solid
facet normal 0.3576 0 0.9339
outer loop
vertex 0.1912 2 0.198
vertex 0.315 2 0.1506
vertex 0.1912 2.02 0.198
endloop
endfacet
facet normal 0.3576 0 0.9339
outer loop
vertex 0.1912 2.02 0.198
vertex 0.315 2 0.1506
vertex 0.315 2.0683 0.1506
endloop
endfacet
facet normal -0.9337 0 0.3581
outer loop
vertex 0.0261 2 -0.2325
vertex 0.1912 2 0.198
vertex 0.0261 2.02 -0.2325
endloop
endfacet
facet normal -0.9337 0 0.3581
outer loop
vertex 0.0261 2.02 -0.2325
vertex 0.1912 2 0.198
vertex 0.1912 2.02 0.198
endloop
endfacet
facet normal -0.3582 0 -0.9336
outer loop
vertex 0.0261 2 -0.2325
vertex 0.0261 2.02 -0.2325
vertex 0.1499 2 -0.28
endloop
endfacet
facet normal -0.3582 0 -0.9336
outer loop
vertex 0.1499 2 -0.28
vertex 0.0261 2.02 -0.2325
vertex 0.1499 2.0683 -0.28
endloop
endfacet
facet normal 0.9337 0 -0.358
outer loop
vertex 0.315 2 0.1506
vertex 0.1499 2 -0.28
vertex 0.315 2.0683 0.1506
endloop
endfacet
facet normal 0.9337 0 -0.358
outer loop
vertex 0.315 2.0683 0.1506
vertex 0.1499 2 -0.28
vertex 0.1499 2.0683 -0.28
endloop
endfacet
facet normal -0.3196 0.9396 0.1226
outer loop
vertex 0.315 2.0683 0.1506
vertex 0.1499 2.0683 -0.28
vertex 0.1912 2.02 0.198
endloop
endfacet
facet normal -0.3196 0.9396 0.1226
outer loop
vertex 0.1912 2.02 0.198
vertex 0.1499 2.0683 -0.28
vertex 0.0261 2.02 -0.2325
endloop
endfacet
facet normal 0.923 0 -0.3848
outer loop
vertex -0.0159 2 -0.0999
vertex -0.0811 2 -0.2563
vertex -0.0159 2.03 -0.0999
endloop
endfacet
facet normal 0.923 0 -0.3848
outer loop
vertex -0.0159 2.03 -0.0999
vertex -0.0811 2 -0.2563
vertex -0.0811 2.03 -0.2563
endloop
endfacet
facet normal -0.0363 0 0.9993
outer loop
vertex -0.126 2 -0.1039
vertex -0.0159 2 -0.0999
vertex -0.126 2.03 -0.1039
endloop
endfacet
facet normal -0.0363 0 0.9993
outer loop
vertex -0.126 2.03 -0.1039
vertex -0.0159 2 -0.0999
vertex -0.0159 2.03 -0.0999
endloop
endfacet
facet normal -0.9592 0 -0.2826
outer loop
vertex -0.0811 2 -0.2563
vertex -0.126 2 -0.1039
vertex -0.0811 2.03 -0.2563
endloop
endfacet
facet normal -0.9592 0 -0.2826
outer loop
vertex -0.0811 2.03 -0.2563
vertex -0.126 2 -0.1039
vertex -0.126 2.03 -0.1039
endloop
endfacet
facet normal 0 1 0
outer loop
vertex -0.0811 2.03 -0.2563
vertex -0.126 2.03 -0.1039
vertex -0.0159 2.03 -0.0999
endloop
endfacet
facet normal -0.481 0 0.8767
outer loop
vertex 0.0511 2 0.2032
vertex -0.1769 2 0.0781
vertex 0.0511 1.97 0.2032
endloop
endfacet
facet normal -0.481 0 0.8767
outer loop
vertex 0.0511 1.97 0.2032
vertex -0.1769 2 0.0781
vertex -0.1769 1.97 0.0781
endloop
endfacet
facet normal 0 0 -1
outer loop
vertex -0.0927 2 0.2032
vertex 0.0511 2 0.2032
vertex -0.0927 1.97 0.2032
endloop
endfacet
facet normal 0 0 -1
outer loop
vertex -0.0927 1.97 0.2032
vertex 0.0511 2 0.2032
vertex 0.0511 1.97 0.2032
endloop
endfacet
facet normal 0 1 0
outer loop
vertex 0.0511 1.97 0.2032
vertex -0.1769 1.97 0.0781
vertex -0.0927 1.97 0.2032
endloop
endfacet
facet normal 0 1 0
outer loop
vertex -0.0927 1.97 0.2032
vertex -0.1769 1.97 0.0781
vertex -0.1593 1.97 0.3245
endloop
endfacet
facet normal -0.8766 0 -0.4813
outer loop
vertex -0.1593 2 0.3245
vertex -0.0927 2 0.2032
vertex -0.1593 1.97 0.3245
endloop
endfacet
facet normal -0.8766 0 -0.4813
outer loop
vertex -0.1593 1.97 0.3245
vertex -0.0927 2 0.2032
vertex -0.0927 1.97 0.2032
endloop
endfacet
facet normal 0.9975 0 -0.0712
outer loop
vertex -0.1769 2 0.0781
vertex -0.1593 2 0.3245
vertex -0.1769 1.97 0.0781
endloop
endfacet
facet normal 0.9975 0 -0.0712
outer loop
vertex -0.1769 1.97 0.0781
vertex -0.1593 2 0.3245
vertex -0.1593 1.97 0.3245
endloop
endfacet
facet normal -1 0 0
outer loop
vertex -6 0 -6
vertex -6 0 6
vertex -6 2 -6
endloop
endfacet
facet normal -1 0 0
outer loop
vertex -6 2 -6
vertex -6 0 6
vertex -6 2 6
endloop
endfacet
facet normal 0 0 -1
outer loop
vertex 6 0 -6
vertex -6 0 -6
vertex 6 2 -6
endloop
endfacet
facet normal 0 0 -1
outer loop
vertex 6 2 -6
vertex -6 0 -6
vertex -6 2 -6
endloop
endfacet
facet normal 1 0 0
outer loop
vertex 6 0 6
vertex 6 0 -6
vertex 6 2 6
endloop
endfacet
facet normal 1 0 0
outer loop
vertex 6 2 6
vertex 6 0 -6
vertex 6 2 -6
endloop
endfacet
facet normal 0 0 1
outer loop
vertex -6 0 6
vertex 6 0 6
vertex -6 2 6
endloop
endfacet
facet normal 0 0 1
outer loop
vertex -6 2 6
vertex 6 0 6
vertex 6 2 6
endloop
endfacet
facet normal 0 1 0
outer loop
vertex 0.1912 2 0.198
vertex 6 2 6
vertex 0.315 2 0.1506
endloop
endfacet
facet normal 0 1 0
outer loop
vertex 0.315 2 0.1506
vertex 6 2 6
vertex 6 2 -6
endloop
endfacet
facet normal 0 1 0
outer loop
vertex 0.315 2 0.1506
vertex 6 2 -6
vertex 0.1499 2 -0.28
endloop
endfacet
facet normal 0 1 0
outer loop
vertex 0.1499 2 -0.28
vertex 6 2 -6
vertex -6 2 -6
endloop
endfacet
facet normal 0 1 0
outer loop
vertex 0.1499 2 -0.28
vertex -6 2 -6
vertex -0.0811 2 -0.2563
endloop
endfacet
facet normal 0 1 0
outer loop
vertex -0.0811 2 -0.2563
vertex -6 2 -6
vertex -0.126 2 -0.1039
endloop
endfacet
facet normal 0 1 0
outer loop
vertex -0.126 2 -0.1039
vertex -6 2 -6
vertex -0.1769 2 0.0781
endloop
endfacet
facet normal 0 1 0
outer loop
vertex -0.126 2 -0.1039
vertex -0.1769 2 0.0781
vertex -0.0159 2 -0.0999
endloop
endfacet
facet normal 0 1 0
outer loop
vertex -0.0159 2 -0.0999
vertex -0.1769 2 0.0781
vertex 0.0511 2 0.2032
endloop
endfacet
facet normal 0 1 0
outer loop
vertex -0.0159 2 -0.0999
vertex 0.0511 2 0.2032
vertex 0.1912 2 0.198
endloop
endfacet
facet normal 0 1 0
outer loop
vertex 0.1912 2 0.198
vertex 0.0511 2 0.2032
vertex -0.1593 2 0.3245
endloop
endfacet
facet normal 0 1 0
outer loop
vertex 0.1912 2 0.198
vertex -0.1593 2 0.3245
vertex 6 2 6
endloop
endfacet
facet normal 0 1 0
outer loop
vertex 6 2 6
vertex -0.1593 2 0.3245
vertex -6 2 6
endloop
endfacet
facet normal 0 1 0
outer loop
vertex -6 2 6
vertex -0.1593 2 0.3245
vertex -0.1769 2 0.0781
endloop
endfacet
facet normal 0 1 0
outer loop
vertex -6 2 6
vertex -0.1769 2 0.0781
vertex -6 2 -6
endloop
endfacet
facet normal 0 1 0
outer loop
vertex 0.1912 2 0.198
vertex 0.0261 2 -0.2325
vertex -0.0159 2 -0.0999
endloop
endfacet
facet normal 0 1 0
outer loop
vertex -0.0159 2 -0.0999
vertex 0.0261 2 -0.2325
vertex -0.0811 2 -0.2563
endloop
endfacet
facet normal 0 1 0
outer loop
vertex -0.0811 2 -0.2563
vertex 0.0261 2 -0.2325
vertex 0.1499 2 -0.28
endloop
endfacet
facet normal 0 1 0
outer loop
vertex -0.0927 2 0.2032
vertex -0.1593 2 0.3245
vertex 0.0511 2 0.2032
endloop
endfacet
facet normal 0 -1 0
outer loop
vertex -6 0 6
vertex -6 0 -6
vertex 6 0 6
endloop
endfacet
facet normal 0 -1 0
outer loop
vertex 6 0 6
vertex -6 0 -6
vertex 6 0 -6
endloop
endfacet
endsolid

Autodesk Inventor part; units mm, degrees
ref_plane "YZ Plane" through (0, 0, 0) normal (1, 0, 0) x (0, 1, 0)
ref_plane "XZ Plane" through (0, 0, 0) normal (0, 1, 0) x (-1, 0, 0)
ref_plane "XY Plane" through (0, 0, 0) normal (0, 0, 1) x (1, 0, 0)
sketch "Sketch1" plane through (0, 0, 0) normal (0, 1, 0) x (-1, 0, 0)
  line L0 (6, 6) -> (-6, 6)
  line L1 (-6, 6) -> (-6, -6)
  line L2 (-6, -6) -> (6, -6)
  line L3 (6, -6) -> (6, 6)
  line L4 (6, 6) -> (-6, -6) construction
  line L5 (-6, 6) -> (6, -6) construction
  point P0 (0, 0)
  dimension "d0" = 12
  dimension "d1" = 12
extrude "Extrusion1" add sketch "Sketch1" along normal blind 2
sketch "Sketch2" plane through (0, 2, 0) normal (0, 1, 0) x (1, 0, 0)
  line L0 (-0.0927, -0.2032) -> (0.0511, -0.2032)
  line L1 (0.0511, -0.2032) -> (-0.1769, -0.0781)
  line L2 (-0.1769, -0.0781) -> (-0.1593, -0.3245)
  line L3 (-0.1593, -0.3245) -> (-0.0927, -0.2032)
  line L4 (-0.0811, 0.2563) -> (-0.126, 0.1039)
  line L5 (-0.126, 0.1039) -> (-0.0159, 0.0999)
  line L6 (-0.0159, 0.0999) -> (-0.0811, 0.2563)
  line L7 (0.315, -0.1506) -> (0.1499, 0.28)
  line L8 (0.1499, 0.28) -> (0.0261, 0.2325)
  line L9 (0.0261, 0.2325) -> (0.1912, -0.198)
  line L10 (0.1912, -0.198) -> (0.315, -0.1506)
  line L11 (0.315, -0.1506) -> (0.0261, 0.2325) construction
  line L12 (0.1499, 0.28) -> (0.1912, -0.198) construction
  point P0 (0, 0)
  point P1 (0.1705, 0.041)
extrude "Extrusion2" cut sketch "Sketch2" along normal mid plane 0.06 contours L3 L2 L1 L0
extrude "Extrusion3" add sketch "Sketch2" along normal blind 0.03 contours L6 L5 L4
extrude "Extrusion4" add sketch "Sketch2" along normal blind 0.02 contours L10 L9 L8 L7
draft "FaceDraft1" angle 20 pull direction (-0.9337322, 0, 0.3579724) faces at (0.2187, 2.02, 0.0229) fixed edges at (0.1086, 2.02, -0.0173)
properties part number "example_sample"
